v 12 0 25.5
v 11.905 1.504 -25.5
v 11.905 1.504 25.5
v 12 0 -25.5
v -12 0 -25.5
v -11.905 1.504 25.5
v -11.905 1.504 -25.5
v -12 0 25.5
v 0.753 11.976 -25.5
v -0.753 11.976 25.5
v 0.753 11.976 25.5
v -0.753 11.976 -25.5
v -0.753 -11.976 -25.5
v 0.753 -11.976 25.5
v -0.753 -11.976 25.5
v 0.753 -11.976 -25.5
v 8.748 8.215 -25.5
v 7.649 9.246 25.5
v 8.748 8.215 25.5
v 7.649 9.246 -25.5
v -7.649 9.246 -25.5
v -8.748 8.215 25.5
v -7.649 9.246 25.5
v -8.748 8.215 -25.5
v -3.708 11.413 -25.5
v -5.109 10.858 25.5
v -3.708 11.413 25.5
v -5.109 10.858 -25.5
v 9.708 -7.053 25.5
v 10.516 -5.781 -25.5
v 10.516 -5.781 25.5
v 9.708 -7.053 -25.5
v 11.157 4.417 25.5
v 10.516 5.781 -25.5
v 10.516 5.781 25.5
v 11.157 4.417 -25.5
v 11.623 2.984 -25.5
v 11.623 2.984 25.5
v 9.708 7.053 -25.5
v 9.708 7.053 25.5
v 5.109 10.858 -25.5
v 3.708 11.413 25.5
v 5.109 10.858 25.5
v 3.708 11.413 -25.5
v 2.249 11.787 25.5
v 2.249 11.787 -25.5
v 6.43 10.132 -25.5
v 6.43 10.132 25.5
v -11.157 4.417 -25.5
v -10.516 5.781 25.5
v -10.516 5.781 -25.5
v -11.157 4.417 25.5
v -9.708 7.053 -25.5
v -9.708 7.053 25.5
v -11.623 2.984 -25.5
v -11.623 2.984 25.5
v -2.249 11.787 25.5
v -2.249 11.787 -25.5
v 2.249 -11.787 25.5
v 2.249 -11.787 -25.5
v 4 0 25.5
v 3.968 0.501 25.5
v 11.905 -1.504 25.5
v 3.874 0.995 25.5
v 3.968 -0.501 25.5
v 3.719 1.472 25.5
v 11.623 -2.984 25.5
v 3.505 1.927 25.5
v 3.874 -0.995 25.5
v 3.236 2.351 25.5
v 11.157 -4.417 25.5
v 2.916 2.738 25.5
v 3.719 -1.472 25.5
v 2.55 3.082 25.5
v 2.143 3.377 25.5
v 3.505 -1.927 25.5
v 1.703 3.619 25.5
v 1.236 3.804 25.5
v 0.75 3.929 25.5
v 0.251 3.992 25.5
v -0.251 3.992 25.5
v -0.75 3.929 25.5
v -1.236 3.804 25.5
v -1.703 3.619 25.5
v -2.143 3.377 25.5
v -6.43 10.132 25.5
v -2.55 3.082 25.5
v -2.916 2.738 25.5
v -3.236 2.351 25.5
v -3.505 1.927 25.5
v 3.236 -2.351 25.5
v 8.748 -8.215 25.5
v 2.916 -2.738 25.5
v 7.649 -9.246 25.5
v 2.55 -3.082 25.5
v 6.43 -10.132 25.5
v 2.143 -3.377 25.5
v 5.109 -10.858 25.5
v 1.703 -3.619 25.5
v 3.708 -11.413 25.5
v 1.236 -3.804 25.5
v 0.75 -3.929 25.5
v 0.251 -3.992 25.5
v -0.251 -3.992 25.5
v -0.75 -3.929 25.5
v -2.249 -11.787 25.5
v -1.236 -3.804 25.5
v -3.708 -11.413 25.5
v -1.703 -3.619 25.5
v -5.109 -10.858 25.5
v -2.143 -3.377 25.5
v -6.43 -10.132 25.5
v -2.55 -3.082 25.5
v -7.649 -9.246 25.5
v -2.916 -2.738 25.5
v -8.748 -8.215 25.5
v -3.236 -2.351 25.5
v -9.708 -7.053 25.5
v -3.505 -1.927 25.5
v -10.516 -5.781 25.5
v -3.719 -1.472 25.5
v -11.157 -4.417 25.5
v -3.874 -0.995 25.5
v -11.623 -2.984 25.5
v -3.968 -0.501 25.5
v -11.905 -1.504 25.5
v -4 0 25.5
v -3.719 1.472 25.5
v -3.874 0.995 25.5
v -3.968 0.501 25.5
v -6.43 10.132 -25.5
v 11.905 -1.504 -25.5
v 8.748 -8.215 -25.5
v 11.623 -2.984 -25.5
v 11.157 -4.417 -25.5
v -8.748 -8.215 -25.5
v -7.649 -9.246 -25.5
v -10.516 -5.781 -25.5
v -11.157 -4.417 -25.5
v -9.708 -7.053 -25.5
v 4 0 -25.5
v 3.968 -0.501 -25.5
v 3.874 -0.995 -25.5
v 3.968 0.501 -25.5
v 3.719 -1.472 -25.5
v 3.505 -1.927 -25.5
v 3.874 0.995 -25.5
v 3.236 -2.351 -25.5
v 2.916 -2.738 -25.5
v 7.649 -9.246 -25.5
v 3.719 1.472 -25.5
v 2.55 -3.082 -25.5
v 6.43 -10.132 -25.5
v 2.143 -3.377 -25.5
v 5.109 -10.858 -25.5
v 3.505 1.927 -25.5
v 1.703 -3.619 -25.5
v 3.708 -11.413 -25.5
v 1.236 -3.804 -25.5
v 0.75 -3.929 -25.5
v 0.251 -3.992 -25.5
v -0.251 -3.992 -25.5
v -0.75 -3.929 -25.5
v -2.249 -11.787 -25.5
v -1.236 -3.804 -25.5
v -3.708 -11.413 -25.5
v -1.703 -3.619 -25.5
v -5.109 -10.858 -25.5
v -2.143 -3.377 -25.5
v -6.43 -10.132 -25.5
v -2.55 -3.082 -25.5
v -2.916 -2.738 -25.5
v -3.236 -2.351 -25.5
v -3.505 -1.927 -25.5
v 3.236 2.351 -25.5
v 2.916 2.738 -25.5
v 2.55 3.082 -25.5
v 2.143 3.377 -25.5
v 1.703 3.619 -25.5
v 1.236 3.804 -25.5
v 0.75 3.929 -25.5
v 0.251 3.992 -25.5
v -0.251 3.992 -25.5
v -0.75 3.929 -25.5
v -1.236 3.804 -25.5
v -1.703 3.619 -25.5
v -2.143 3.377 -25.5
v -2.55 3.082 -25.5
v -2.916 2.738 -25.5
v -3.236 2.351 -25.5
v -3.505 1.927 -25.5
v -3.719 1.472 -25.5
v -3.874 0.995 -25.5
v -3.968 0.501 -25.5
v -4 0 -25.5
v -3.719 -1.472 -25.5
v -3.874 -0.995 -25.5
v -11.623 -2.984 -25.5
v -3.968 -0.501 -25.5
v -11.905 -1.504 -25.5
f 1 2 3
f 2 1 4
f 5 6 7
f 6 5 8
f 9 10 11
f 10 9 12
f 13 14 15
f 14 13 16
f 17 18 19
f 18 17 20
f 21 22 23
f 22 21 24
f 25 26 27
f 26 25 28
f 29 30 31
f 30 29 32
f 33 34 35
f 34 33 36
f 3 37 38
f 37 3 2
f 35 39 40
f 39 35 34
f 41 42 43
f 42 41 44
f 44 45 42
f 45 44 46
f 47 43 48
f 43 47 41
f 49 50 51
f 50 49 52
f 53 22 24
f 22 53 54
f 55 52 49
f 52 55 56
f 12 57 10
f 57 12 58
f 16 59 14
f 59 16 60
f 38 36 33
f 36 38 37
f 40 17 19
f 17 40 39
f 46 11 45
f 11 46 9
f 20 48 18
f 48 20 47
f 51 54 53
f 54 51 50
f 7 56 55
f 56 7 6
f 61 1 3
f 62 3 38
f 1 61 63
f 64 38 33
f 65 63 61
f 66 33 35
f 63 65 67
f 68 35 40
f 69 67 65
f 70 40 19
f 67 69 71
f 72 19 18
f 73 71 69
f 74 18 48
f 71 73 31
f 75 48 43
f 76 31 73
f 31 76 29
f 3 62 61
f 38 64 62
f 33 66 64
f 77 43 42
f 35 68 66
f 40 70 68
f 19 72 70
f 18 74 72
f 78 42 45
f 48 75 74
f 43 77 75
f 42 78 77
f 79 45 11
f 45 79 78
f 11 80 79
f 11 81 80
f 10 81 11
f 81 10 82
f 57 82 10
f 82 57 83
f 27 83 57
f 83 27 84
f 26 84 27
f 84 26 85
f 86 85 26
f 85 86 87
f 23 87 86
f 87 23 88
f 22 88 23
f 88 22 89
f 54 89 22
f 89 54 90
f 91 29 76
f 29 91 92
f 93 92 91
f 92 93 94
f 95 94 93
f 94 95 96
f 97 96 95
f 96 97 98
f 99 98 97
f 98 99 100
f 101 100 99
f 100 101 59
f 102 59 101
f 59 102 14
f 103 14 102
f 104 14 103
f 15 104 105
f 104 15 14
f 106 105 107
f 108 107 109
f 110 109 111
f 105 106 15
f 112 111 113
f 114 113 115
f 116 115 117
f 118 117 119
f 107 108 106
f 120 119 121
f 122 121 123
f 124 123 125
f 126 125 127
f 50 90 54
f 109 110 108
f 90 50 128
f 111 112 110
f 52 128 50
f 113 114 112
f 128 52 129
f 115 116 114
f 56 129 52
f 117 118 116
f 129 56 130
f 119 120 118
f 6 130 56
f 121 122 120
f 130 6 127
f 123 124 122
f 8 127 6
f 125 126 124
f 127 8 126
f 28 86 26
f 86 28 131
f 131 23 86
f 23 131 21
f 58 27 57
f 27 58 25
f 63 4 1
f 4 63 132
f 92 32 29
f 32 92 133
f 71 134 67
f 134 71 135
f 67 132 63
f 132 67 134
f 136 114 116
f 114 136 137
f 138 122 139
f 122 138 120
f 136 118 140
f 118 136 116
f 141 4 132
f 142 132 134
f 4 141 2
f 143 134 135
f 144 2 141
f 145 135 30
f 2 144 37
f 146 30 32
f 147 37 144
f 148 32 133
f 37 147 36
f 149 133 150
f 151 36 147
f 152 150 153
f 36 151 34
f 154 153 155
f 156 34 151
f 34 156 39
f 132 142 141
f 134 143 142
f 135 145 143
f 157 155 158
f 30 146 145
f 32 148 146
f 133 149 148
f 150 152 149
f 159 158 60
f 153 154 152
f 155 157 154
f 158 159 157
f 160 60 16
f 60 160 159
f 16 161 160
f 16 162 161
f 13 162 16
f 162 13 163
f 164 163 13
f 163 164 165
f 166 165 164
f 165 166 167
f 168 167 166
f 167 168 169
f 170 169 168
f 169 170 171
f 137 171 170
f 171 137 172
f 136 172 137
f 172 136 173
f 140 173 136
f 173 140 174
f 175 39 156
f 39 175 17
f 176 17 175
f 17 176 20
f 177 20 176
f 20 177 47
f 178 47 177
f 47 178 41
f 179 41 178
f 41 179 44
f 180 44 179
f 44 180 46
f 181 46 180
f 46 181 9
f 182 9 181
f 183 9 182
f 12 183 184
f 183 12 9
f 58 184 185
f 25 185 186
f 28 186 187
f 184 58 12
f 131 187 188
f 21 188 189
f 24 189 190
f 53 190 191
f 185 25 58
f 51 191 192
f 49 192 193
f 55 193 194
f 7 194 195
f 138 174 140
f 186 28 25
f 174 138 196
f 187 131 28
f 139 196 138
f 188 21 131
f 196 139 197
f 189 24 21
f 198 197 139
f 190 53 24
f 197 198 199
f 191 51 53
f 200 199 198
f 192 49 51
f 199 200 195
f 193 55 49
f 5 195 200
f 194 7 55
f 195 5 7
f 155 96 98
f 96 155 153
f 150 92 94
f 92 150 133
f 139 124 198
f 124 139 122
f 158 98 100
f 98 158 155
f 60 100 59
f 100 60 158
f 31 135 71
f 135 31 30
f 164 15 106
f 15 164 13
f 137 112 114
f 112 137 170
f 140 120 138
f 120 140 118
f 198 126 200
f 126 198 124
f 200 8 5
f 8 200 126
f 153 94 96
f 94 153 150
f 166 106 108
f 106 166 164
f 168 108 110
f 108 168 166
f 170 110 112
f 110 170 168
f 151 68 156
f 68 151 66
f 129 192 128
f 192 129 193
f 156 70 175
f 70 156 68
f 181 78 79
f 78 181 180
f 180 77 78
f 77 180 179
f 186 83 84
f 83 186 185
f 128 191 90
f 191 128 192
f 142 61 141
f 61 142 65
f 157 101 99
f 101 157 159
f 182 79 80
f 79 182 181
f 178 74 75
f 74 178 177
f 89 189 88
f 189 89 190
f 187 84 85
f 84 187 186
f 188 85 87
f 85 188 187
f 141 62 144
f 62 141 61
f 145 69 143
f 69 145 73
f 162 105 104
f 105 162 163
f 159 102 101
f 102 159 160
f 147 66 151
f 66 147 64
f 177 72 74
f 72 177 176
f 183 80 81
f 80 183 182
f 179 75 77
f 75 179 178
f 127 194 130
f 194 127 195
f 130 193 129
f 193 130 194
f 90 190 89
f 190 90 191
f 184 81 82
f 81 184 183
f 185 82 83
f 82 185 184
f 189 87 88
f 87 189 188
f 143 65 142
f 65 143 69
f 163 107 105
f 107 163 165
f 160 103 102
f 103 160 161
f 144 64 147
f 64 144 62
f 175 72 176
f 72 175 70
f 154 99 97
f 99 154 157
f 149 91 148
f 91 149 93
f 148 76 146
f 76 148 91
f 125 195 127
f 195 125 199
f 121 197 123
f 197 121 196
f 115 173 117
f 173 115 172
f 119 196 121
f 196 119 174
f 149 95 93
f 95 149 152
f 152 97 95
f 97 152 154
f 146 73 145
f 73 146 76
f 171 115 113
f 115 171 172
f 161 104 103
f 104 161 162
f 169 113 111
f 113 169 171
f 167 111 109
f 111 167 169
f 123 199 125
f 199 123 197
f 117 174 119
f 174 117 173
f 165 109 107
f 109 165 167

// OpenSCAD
$fn = 50;


difference() {
	union() {
		translate(v = [0, 0, -25.5000000000]) {
			cylinder(h = 51, r = 12.0000000000);
		}
	}
	union() {
		translate(v = [0, 0, -100.0000000000]) {
			cylinder(h = 200, r = 4);
		}
	}
}
